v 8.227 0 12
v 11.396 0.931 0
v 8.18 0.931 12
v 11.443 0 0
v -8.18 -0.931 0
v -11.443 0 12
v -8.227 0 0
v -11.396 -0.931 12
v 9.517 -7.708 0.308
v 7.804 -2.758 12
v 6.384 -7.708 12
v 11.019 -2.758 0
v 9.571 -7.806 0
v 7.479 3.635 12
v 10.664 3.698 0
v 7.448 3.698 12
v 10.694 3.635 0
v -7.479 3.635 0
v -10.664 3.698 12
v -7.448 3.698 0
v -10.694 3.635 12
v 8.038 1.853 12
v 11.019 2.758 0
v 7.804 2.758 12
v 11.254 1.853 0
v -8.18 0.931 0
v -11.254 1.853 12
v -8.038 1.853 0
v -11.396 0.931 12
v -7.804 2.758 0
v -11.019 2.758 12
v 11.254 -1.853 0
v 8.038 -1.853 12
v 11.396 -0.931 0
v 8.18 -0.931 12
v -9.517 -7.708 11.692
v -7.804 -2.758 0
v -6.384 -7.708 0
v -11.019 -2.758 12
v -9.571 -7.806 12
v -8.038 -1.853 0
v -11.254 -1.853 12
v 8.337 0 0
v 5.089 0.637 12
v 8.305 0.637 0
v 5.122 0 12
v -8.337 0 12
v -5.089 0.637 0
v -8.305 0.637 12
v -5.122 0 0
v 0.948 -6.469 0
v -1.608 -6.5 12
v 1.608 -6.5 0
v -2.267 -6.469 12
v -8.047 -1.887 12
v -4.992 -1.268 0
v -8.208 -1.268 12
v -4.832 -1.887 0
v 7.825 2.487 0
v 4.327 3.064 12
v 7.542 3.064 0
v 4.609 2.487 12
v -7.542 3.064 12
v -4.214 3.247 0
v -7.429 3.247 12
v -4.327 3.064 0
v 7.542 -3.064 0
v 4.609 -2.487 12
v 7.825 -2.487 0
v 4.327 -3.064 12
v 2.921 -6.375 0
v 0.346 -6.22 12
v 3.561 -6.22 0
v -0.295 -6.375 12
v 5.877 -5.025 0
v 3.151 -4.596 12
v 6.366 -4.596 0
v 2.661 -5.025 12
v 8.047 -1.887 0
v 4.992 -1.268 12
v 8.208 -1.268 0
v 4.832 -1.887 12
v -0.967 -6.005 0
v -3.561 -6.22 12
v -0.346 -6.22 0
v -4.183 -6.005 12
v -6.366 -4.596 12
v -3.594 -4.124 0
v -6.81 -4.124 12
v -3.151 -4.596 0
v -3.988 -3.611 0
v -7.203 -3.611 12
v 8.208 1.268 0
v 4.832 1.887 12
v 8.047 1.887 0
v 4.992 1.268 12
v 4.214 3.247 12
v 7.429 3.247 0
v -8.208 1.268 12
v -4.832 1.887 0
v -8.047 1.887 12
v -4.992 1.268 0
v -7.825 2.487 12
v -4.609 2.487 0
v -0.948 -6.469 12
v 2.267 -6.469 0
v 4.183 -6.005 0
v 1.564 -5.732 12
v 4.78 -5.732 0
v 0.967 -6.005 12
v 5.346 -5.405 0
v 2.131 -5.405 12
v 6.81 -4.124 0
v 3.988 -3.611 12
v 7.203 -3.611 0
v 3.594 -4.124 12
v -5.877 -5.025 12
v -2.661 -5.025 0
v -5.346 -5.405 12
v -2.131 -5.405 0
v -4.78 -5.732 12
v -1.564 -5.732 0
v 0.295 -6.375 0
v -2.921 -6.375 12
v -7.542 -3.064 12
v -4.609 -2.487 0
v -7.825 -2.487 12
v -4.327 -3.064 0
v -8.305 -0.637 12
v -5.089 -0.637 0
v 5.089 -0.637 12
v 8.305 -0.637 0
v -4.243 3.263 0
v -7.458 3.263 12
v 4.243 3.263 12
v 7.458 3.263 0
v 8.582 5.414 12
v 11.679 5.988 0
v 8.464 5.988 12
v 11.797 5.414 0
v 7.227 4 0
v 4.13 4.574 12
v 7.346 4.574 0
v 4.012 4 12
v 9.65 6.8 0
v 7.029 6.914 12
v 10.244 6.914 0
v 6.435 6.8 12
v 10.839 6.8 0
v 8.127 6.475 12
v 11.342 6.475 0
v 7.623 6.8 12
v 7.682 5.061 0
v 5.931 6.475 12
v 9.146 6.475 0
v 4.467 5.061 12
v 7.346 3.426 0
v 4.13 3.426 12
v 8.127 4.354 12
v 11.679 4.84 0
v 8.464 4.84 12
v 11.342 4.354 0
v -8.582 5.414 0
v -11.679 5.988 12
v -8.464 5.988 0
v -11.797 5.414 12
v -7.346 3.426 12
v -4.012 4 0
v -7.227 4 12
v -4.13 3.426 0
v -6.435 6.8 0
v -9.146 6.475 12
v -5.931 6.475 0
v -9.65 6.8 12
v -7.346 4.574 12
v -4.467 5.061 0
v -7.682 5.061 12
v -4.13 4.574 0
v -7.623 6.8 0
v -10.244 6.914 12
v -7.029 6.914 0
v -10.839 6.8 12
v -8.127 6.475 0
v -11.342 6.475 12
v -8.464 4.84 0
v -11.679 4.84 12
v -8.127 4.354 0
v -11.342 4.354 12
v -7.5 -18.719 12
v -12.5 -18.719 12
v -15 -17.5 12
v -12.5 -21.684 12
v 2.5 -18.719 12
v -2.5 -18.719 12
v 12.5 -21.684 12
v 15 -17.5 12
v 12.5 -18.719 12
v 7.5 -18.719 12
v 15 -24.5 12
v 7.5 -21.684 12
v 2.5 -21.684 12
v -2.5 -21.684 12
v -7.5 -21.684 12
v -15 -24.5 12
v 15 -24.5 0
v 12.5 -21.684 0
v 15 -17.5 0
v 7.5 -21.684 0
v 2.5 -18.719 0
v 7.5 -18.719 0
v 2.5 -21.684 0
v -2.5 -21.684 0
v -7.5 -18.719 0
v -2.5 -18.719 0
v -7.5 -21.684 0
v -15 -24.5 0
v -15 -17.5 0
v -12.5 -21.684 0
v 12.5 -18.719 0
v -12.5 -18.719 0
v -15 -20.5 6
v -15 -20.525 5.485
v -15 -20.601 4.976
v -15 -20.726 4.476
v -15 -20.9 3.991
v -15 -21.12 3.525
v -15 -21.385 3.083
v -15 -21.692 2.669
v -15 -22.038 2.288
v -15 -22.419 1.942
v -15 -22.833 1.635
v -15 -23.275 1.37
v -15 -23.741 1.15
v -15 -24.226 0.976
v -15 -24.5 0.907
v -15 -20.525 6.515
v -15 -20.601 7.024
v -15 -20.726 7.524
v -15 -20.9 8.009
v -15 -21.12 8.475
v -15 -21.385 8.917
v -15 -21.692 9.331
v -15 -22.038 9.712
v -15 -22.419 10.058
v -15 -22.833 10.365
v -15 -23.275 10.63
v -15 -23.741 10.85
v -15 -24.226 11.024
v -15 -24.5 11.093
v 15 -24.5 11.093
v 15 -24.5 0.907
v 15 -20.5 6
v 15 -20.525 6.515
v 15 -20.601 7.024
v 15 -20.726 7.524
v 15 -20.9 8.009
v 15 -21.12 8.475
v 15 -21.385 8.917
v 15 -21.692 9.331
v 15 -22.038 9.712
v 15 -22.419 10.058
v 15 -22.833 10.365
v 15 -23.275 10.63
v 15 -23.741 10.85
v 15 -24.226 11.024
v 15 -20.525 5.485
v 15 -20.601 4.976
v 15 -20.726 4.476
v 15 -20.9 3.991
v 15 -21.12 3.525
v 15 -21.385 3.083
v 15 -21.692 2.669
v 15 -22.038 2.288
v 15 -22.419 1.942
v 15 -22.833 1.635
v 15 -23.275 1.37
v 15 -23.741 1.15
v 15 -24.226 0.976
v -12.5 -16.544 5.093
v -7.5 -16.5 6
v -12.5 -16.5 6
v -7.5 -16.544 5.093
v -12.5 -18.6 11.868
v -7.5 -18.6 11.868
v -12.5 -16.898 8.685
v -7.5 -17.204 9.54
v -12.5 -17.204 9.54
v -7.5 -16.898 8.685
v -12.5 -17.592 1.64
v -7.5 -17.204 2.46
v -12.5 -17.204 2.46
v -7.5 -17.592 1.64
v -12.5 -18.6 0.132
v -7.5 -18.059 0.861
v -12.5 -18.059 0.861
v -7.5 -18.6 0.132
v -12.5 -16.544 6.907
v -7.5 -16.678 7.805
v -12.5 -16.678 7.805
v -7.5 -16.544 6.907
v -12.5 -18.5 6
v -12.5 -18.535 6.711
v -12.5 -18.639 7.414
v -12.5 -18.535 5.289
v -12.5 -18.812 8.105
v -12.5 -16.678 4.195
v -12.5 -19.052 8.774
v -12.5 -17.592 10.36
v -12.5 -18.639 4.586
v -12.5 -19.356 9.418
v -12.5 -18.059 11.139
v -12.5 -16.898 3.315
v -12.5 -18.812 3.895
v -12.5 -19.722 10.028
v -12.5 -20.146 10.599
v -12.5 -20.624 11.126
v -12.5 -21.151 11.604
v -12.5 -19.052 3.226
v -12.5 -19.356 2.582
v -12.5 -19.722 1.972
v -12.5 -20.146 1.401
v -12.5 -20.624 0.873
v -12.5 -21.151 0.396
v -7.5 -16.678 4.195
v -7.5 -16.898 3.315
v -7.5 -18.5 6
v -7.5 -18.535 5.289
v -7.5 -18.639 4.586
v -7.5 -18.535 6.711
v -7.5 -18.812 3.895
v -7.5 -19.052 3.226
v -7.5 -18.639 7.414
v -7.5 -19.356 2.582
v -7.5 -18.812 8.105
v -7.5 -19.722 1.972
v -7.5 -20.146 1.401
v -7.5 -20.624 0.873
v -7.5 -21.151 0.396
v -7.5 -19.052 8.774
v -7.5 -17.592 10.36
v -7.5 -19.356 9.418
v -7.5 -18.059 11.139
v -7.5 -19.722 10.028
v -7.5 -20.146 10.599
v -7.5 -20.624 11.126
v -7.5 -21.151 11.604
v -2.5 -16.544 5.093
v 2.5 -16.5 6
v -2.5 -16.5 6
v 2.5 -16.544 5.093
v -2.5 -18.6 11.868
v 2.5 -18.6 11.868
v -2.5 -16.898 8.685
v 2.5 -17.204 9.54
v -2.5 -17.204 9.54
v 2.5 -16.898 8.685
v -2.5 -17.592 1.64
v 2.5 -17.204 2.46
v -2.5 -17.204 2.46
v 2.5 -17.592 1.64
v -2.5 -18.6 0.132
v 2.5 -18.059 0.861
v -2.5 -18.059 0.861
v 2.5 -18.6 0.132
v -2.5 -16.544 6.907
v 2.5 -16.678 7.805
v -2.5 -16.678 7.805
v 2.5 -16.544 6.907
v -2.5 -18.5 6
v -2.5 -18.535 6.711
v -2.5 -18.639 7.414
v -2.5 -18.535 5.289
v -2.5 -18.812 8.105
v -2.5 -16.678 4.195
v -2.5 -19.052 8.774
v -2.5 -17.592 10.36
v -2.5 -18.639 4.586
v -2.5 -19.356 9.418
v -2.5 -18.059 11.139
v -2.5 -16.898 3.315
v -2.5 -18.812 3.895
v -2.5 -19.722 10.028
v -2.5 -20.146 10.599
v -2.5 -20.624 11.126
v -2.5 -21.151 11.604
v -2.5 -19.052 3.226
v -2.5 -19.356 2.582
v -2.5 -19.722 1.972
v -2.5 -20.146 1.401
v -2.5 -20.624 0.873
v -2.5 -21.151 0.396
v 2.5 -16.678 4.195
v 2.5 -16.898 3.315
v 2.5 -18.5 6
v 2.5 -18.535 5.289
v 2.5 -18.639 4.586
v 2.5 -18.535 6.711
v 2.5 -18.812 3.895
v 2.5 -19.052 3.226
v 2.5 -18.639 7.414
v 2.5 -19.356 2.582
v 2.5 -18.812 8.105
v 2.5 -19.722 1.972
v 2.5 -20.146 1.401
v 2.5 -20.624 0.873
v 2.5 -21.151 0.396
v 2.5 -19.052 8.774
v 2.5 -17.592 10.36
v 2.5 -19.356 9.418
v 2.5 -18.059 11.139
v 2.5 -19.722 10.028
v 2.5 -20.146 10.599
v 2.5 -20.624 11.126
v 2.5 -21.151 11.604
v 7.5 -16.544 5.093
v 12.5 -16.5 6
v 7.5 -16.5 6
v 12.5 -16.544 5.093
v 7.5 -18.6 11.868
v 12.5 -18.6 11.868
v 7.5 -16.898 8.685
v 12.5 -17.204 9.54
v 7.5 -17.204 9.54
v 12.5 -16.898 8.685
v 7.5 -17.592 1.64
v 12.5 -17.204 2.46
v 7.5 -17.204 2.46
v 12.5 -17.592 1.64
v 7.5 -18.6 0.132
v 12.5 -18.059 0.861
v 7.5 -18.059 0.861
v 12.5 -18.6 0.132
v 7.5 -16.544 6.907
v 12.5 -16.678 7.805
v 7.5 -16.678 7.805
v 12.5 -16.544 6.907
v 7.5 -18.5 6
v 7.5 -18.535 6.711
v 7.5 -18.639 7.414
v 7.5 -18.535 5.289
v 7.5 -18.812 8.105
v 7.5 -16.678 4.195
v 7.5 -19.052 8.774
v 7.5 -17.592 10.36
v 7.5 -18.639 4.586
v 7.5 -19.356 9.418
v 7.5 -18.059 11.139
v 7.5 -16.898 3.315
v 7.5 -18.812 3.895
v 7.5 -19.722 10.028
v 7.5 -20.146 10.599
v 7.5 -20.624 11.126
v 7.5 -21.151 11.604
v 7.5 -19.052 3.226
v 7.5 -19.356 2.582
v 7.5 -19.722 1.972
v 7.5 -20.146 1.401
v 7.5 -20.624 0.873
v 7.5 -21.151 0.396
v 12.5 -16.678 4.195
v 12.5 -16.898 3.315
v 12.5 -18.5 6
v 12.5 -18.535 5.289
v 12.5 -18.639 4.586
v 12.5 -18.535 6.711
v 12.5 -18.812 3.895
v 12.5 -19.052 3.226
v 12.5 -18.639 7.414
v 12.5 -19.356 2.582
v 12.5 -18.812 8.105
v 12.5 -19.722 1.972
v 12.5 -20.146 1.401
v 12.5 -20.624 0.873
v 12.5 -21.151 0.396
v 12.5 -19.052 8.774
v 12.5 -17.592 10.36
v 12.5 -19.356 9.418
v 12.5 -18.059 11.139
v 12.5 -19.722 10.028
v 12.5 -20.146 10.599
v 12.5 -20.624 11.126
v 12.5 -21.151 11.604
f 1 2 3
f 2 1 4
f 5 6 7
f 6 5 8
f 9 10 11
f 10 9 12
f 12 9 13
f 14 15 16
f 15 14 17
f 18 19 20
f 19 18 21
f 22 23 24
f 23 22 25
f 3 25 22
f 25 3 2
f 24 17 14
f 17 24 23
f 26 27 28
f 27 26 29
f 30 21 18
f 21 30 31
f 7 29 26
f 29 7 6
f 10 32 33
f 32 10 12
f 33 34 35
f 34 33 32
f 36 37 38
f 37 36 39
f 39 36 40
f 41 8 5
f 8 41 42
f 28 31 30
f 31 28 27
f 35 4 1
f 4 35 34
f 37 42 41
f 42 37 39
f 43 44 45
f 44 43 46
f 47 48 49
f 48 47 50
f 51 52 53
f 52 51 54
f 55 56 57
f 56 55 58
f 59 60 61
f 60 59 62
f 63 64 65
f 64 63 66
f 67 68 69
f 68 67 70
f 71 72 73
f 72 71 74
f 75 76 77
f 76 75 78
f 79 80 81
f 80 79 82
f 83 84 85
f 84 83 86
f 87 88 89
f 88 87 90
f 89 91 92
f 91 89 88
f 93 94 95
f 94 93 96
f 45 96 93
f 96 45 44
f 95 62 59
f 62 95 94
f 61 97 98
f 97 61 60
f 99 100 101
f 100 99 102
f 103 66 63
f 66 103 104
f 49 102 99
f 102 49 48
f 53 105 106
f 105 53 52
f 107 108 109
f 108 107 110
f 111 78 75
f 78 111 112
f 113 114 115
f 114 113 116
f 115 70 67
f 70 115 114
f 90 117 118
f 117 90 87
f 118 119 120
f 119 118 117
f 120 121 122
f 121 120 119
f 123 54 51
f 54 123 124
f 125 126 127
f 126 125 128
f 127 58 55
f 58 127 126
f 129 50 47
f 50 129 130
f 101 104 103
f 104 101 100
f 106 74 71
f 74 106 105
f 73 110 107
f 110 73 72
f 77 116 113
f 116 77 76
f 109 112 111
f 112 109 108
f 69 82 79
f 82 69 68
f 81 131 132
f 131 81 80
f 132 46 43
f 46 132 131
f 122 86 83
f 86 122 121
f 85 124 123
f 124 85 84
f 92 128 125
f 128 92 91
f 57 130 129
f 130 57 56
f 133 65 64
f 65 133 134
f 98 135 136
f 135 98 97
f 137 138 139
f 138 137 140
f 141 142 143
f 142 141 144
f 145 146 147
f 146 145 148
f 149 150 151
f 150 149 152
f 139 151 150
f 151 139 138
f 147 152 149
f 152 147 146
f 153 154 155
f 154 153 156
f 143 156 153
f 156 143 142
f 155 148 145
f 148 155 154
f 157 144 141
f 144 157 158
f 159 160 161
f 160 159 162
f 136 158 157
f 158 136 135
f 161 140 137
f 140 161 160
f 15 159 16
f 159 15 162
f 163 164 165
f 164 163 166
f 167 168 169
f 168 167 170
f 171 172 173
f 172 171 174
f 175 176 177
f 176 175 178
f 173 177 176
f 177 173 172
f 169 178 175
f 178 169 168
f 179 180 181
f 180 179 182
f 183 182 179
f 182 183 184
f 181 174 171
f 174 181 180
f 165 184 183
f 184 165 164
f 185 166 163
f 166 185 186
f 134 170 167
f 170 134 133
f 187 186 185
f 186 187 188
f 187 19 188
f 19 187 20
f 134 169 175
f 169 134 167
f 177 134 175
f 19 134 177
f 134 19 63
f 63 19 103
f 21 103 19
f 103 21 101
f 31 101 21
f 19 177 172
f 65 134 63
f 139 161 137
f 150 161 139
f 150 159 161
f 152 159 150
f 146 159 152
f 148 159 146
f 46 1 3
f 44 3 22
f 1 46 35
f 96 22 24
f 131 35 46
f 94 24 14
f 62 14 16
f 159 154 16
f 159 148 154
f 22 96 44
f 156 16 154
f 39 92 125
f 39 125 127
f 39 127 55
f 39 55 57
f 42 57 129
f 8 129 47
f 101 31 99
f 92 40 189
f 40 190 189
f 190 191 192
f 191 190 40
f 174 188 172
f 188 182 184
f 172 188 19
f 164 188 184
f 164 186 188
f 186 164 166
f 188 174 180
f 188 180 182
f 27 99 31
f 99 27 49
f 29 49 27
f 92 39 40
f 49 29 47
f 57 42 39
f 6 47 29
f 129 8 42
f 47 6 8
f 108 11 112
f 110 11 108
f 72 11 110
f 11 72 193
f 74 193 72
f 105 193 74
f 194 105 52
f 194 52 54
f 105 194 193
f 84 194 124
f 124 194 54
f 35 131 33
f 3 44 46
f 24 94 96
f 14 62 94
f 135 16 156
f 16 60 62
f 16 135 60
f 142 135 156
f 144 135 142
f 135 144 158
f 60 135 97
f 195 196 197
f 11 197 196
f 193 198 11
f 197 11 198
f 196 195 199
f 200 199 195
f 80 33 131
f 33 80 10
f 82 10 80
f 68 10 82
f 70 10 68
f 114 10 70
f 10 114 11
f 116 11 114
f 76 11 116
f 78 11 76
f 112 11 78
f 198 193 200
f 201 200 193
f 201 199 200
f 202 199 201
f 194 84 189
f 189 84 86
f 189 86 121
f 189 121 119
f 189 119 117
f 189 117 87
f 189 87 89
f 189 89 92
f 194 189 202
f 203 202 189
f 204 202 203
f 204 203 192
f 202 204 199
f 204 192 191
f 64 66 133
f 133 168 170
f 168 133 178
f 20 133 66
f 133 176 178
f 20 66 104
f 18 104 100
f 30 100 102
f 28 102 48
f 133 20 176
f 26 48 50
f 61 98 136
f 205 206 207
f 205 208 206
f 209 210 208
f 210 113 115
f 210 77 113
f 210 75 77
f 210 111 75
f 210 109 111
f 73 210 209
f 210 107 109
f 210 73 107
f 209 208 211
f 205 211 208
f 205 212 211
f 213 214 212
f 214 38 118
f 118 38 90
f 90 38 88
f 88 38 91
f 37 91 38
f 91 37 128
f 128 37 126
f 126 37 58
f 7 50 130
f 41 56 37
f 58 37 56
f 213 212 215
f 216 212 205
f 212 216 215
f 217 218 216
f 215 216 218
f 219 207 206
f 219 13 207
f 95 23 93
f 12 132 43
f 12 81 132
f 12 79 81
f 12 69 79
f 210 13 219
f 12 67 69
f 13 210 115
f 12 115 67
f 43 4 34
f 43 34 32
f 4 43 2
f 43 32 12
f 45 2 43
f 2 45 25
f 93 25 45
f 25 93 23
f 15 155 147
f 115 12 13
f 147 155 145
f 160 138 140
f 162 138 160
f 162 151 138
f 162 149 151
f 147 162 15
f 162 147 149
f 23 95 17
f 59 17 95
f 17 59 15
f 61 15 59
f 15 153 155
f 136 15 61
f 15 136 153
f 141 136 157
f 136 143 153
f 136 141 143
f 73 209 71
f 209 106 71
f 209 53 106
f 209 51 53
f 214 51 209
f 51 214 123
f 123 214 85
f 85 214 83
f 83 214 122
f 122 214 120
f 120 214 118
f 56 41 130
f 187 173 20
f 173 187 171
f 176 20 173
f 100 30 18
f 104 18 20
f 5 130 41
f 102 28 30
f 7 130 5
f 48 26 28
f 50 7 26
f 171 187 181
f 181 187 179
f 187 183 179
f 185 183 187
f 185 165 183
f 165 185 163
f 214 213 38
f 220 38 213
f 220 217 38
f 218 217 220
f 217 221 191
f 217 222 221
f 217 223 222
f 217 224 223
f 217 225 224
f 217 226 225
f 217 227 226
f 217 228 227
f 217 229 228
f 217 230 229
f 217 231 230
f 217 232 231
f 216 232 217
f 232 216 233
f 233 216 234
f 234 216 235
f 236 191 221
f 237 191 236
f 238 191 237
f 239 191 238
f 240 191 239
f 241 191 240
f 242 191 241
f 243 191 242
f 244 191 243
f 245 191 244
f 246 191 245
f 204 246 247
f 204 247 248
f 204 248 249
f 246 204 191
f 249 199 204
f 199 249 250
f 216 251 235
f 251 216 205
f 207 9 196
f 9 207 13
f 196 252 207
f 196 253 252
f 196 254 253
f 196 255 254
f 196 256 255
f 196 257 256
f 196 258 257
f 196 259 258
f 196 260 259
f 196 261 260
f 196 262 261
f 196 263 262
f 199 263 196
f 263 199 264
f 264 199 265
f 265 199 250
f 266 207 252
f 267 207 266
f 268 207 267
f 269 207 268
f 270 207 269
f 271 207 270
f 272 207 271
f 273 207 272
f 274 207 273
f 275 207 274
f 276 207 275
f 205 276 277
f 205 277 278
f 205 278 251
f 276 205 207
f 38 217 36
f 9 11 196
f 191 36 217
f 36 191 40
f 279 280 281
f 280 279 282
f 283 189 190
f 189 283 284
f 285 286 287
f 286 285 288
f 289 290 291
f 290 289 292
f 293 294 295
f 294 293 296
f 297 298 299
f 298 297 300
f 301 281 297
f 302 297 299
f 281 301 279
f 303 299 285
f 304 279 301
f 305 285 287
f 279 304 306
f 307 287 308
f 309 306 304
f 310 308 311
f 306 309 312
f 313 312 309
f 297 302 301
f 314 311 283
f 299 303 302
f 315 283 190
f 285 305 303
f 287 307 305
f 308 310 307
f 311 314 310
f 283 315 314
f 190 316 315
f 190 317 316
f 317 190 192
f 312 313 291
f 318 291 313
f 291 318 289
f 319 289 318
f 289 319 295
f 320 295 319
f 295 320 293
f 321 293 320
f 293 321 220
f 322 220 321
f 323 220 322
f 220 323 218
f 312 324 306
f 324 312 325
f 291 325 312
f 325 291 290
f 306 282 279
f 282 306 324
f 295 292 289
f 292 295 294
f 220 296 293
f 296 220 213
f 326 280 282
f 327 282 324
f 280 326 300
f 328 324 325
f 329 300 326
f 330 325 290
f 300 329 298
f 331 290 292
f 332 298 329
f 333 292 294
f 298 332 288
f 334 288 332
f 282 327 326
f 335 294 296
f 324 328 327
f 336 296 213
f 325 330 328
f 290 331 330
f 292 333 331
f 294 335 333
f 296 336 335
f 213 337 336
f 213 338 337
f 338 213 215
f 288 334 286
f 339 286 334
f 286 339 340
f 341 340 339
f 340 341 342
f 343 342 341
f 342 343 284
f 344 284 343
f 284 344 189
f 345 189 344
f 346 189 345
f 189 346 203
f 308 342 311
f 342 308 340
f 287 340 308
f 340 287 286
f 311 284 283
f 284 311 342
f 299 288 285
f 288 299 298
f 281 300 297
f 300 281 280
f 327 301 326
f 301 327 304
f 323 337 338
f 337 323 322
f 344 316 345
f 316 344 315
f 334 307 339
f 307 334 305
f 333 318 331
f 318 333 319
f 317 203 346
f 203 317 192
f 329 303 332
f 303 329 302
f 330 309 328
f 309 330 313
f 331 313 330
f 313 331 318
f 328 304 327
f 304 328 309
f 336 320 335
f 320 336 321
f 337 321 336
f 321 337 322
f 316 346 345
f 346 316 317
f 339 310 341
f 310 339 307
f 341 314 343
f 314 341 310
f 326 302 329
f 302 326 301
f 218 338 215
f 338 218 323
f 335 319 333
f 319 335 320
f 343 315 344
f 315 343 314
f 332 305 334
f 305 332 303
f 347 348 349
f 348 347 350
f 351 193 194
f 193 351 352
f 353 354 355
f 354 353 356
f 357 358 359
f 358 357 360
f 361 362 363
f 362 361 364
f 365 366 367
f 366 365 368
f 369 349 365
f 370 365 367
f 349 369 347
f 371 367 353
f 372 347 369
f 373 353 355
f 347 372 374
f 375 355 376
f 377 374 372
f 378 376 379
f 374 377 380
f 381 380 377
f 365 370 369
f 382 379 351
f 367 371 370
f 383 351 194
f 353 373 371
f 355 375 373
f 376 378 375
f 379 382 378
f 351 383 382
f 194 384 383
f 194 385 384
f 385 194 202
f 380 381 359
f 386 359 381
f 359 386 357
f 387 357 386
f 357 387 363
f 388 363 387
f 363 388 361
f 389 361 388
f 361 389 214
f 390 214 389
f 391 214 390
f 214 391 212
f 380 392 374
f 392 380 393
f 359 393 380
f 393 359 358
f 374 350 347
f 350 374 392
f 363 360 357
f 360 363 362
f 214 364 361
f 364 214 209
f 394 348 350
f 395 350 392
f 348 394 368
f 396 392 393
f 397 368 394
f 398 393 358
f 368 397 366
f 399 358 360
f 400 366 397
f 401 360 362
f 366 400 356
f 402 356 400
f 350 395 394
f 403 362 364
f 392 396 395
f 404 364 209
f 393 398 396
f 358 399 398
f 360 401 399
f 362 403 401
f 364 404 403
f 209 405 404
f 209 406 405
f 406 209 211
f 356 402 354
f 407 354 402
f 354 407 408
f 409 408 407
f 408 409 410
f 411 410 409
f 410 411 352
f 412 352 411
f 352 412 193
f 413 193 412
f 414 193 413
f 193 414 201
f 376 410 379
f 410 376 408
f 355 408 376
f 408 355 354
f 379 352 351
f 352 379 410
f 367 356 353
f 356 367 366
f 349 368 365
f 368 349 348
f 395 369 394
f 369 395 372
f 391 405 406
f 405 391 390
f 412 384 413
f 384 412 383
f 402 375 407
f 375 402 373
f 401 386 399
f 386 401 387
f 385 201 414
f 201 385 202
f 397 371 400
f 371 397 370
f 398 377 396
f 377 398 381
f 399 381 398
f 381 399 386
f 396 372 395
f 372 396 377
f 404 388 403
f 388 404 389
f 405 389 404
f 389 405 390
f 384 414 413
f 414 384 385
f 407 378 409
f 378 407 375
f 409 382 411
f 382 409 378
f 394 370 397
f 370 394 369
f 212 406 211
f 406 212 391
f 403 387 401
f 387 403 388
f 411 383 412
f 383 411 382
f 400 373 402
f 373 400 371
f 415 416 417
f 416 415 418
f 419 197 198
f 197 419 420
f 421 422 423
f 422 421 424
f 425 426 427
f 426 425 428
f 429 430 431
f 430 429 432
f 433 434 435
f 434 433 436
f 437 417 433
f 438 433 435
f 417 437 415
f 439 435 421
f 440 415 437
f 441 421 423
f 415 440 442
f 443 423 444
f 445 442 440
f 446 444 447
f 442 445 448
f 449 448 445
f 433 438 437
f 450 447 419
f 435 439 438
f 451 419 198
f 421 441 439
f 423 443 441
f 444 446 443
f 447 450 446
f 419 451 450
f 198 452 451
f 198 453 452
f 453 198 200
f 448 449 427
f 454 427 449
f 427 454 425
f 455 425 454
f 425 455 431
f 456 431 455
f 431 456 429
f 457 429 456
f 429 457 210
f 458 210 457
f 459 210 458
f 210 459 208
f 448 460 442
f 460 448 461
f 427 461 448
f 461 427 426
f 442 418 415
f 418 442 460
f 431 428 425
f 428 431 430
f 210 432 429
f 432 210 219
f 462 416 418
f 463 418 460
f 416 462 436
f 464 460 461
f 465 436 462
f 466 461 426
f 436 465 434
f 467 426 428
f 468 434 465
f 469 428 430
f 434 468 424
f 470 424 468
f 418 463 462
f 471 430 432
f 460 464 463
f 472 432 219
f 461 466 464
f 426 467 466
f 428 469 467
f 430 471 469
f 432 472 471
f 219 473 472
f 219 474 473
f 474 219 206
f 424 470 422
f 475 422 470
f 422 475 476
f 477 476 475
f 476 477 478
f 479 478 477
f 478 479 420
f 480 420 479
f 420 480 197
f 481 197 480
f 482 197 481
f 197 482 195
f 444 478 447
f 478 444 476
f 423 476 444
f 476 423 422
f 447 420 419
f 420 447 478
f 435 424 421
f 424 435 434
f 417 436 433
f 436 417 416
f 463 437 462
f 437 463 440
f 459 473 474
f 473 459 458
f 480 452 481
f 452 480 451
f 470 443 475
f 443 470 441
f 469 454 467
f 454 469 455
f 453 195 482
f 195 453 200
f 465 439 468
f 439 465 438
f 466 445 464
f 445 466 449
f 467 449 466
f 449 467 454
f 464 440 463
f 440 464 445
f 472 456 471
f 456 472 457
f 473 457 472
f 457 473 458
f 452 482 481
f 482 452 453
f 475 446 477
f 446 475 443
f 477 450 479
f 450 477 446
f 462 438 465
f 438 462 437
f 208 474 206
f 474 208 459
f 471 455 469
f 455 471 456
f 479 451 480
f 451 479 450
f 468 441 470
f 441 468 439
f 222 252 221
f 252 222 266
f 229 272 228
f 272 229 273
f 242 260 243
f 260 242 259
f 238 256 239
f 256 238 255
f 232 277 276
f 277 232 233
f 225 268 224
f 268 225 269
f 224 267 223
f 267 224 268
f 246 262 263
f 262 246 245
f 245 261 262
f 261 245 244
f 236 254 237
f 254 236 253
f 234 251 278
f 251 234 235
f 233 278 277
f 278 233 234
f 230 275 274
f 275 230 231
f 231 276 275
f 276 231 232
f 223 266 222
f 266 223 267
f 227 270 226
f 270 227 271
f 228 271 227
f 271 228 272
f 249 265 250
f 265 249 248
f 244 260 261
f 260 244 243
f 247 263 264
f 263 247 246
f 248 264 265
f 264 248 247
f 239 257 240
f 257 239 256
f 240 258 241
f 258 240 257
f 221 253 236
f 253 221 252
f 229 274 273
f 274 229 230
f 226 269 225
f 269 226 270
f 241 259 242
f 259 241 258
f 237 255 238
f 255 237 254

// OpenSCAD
// file: cylinder_clip.scad
use <../utilities.scad>;

module cylinder_clip(r=1,t=3,opening_angle=120,wing_length=2,wing_angle=45,flat_w=10,flat_t=3,h=10,$fn=$fn){
	union(){
		difference(){
			hull(){
				cylinder(r=r+t,$fn=$fn,h=h);
				translate([-flat_w/2,-r-flat_t,0]) cube([flat_w,0.1,h]);
			}
			cylinder(r=r,$fn=$fn,h=99999,center=true);
			cylinder(r1=r+2,r2=r,$fn=$fn,h=2,center=true);
			scale([tan(opening_angle/2),1,1]) rotate([0,0,45]) translate([0,0,-1]) cube([1,1,1]*9999);
		}
		reflect([1,0,0]) translate([sin(opening_angle/2),cos(opening_angle/2),0]*(r+t/2)) hull() repeat([sin(wing_angle),cos(wing_angle),0]*wing_length,2)
			cylinder(r=t/2,h=h,$fn=16);
			
	}
}

//cylinder_clip(r=3,t=2,flat_w=6);
union(){
	cylinder_clip(r=21,t=4.5,flat_t=10,opening_angle=100,$fn=64);
	translate([-5,-22-5-20,0]) cube([10,20,10]);
}
// main file
use <../utilities.scad>;
use <./cylinder_clip.scad>;

$fn=64;
d=0.05;

tube_r = 10.5/2;
lock_r = 14/2-0.5;
separation = 14;
h = 12;
wrap = 4;

module annulus(inner_r,thickness,h,center=false){
	difference(){
		cylinder(r=inner_r+thickness,h=h,center=center);
		cylinder(r=inner_r,h=99999,center=true);
	}
}
module cable_tie(inner_r,center=false){
	annulus(inner_r+2,2,5,center=center);
}
module rotate_and_clip(){
    intersection(){
        translate([0,0,h/2]) cube([999,999,h],center=true);
        translate([0,0,h/2]) rotate([0,-15,0]) translate([0,0,-h/2]) children();
    }
}

difference(){
    union(){
        rotate_and_clip() translate([0,0,-999/2]) cylinder_clip(r=lock_r,t=3,flat_t=2,h=999,flat_w=15);
        hull(){
            translate([-15,-separation-lock_r-wrap,0]) cube([30,wrap+3,h]);
            rotate_and_clip() translate([-7.5,-lock_r-1,-999/2]) cube([15,d,999]);
        }
    }
    
	translate([0,-lock_r-separation-tube_r,h/2]) rotate([0,90,0]){
		cylinder(r=tube_r,h=999,center=true);
		repeat([0,0,10],3,center=true) cable_tie(tube_r,center=true);
	}
}
